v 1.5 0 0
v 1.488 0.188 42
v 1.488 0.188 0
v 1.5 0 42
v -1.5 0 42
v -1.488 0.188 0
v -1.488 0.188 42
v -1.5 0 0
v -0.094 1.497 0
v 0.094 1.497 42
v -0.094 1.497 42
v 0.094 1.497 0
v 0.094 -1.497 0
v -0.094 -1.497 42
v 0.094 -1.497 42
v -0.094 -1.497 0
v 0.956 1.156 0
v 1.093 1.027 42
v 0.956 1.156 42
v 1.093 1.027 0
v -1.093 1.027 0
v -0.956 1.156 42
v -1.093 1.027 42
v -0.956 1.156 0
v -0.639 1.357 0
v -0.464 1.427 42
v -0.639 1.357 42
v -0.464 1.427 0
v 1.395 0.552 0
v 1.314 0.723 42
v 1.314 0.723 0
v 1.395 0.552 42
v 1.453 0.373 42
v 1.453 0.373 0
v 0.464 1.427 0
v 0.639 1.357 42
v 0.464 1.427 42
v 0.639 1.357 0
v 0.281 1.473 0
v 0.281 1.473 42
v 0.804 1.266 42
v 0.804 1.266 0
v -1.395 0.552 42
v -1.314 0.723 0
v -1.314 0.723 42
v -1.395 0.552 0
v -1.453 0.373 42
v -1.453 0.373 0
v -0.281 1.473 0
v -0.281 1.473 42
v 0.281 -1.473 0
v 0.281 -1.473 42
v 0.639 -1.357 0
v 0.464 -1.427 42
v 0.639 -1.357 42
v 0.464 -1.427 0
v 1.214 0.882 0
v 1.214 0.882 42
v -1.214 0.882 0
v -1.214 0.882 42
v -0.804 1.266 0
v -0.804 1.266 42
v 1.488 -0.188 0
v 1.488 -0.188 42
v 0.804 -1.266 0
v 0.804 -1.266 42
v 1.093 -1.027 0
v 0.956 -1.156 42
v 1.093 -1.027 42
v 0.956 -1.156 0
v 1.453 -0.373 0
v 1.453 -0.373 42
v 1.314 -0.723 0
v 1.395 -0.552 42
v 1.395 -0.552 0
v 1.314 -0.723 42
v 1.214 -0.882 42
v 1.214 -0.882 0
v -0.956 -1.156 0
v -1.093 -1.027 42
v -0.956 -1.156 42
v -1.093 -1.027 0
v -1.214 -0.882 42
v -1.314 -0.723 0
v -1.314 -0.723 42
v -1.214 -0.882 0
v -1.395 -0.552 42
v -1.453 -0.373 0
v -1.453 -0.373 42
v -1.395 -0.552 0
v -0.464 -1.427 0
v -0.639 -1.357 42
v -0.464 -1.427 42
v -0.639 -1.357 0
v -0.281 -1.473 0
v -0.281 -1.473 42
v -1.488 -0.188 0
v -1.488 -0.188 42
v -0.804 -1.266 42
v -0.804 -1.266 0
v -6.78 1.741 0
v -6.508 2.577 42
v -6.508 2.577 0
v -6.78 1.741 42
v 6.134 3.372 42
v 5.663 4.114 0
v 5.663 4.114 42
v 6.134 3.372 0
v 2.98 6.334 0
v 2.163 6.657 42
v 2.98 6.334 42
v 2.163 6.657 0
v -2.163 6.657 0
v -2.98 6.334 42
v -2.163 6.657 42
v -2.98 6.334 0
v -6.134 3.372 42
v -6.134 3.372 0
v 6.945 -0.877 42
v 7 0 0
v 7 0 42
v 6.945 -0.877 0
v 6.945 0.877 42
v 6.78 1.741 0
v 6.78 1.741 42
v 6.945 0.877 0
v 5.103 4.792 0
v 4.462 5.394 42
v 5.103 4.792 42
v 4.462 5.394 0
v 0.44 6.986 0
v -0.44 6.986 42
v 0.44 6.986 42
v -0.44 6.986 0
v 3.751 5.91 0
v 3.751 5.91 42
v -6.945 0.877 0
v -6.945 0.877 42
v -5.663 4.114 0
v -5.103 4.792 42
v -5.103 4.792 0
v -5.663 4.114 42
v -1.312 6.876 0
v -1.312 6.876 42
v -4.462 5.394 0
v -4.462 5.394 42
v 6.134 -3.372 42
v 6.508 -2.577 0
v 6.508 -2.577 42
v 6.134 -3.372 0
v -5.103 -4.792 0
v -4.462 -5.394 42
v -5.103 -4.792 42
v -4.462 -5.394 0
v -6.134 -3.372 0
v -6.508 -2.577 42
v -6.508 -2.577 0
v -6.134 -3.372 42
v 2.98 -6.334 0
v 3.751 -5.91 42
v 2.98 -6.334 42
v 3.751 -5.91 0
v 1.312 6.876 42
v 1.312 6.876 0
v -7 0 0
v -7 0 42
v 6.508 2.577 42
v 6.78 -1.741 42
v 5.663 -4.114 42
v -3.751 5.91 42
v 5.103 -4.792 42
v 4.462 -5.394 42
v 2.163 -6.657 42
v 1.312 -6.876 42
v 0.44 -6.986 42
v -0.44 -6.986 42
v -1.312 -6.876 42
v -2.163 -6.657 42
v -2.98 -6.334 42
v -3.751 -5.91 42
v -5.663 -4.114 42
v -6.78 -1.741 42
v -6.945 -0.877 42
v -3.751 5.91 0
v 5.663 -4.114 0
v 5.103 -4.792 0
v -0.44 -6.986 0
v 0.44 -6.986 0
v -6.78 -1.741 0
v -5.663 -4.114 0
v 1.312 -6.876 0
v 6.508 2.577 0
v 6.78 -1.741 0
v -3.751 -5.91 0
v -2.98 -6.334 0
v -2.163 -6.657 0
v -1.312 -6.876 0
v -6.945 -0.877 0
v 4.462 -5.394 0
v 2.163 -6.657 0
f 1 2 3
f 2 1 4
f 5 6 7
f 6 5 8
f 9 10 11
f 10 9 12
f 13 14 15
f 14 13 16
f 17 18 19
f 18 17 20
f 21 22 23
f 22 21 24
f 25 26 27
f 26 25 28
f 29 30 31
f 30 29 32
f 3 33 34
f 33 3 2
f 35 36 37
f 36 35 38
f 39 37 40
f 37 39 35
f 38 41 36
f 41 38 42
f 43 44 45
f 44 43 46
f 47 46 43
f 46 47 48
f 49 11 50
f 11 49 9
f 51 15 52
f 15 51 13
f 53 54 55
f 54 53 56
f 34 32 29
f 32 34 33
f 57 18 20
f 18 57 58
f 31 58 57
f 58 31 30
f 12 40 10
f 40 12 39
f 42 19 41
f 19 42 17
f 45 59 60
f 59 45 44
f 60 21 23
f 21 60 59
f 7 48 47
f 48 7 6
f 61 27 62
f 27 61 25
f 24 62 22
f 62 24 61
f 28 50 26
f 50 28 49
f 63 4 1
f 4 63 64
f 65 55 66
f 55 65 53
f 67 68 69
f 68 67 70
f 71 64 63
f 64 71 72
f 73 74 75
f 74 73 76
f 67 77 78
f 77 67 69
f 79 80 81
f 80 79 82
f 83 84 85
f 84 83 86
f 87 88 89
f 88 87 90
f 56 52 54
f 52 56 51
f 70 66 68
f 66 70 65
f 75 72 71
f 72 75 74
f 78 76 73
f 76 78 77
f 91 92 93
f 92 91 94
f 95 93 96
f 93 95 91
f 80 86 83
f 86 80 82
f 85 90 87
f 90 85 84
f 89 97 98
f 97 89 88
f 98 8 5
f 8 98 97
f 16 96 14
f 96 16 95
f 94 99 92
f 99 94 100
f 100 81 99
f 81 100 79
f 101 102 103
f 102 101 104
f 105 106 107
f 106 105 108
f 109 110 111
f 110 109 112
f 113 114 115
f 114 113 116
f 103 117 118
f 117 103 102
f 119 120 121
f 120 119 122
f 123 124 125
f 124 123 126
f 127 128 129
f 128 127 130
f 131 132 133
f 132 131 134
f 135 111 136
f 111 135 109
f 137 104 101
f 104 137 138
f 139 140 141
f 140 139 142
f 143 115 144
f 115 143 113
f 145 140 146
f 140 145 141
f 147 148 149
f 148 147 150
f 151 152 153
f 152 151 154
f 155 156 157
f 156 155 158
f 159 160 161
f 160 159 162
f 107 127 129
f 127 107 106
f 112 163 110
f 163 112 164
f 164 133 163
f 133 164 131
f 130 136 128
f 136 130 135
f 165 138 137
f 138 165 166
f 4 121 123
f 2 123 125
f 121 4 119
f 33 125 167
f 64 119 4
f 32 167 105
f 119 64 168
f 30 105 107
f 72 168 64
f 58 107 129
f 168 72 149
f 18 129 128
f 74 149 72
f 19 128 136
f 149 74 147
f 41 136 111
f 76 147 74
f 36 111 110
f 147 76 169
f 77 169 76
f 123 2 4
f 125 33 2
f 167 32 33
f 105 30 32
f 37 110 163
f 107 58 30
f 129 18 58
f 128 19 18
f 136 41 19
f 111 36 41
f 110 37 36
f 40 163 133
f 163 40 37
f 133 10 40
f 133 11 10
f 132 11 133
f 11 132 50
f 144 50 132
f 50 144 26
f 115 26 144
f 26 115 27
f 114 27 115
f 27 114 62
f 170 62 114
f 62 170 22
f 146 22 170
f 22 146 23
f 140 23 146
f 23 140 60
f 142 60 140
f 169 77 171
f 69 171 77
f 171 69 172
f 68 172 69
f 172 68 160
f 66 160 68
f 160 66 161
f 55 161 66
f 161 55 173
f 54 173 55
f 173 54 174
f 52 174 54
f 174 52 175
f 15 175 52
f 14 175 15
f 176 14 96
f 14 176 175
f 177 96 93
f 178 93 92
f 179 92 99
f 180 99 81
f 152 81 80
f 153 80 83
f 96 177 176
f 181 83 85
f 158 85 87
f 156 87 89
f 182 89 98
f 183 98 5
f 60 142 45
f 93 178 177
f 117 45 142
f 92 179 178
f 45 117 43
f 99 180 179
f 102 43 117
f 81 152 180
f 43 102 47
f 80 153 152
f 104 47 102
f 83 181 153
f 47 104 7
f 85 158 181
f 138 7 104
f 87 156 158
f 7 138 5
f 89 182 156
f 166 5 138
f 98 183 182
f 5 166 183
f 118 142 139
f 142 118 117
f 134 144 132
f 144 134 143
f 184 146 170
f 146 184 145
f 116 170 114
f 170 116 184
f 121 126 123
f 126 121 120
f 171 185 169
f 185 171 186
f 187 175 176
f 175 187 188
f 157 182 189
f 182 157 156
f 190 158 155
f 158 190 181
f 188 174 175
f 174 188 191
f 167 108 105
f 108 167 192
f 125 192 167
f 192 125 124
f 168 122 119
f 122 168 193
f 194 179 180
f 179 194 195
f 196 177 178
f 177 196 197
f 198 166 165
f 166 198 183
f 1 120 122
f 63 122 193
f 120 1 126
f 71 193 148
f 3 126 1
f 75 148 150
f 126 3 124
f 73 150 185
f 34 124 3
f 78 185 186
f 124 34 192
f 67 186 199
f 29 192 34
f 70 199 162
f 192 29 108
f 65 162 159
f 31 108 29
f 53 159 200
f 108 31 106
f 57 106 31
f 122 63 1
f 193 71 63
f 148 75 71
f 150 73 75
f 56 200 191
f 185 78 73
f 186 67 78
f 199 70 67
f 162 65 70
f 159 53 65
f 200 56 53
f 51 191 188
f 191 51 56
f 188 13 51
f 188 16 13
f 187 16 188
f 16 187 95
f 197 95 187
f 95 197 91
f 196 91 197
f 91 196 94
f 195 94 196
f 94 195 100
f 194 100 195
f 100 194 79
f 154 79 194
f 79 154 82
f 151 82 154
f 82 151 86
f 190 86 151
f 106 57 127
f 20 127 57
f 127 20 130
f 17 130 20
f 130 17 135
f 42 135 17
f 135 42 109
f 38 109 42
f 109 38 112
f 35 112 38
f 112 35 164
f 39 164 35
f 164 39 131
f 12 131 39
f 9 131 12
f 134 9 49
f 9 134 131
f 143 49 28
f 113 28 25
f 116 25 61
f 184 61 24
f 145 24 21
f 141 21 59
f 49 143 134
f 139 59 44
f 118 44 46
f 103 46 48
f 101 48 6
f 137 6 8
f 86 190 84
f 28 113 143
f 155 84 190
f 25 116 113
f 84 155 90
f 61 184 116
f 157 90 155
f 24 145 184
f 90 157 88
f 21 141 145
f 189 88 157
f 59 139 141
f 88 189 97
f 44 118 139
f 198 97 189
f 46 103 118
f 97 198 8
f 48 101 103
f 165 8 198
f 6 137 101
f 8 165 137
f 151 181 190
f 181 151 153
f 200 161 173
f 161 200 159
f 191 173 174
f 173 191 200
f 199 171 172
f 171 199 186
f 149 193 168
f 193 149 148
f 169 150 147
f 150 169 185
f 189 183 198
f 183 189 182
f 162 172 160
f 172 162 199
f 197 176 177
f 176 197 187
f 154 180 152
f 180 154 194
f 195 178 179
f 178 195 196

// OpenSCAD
$fn = 50;


difference() {
	union() {
		cylinder(h = 42, r = 7.0000000000);
	}
	union() {
		translate(v = [0, 0, -100]) {
			cylinder(h = 200, r = 1.5000000000);
		}
		translate(v = [0, 0, -100]) {
			cylinder(h = 200, r = 1.5000000000);
		}
	}
}
